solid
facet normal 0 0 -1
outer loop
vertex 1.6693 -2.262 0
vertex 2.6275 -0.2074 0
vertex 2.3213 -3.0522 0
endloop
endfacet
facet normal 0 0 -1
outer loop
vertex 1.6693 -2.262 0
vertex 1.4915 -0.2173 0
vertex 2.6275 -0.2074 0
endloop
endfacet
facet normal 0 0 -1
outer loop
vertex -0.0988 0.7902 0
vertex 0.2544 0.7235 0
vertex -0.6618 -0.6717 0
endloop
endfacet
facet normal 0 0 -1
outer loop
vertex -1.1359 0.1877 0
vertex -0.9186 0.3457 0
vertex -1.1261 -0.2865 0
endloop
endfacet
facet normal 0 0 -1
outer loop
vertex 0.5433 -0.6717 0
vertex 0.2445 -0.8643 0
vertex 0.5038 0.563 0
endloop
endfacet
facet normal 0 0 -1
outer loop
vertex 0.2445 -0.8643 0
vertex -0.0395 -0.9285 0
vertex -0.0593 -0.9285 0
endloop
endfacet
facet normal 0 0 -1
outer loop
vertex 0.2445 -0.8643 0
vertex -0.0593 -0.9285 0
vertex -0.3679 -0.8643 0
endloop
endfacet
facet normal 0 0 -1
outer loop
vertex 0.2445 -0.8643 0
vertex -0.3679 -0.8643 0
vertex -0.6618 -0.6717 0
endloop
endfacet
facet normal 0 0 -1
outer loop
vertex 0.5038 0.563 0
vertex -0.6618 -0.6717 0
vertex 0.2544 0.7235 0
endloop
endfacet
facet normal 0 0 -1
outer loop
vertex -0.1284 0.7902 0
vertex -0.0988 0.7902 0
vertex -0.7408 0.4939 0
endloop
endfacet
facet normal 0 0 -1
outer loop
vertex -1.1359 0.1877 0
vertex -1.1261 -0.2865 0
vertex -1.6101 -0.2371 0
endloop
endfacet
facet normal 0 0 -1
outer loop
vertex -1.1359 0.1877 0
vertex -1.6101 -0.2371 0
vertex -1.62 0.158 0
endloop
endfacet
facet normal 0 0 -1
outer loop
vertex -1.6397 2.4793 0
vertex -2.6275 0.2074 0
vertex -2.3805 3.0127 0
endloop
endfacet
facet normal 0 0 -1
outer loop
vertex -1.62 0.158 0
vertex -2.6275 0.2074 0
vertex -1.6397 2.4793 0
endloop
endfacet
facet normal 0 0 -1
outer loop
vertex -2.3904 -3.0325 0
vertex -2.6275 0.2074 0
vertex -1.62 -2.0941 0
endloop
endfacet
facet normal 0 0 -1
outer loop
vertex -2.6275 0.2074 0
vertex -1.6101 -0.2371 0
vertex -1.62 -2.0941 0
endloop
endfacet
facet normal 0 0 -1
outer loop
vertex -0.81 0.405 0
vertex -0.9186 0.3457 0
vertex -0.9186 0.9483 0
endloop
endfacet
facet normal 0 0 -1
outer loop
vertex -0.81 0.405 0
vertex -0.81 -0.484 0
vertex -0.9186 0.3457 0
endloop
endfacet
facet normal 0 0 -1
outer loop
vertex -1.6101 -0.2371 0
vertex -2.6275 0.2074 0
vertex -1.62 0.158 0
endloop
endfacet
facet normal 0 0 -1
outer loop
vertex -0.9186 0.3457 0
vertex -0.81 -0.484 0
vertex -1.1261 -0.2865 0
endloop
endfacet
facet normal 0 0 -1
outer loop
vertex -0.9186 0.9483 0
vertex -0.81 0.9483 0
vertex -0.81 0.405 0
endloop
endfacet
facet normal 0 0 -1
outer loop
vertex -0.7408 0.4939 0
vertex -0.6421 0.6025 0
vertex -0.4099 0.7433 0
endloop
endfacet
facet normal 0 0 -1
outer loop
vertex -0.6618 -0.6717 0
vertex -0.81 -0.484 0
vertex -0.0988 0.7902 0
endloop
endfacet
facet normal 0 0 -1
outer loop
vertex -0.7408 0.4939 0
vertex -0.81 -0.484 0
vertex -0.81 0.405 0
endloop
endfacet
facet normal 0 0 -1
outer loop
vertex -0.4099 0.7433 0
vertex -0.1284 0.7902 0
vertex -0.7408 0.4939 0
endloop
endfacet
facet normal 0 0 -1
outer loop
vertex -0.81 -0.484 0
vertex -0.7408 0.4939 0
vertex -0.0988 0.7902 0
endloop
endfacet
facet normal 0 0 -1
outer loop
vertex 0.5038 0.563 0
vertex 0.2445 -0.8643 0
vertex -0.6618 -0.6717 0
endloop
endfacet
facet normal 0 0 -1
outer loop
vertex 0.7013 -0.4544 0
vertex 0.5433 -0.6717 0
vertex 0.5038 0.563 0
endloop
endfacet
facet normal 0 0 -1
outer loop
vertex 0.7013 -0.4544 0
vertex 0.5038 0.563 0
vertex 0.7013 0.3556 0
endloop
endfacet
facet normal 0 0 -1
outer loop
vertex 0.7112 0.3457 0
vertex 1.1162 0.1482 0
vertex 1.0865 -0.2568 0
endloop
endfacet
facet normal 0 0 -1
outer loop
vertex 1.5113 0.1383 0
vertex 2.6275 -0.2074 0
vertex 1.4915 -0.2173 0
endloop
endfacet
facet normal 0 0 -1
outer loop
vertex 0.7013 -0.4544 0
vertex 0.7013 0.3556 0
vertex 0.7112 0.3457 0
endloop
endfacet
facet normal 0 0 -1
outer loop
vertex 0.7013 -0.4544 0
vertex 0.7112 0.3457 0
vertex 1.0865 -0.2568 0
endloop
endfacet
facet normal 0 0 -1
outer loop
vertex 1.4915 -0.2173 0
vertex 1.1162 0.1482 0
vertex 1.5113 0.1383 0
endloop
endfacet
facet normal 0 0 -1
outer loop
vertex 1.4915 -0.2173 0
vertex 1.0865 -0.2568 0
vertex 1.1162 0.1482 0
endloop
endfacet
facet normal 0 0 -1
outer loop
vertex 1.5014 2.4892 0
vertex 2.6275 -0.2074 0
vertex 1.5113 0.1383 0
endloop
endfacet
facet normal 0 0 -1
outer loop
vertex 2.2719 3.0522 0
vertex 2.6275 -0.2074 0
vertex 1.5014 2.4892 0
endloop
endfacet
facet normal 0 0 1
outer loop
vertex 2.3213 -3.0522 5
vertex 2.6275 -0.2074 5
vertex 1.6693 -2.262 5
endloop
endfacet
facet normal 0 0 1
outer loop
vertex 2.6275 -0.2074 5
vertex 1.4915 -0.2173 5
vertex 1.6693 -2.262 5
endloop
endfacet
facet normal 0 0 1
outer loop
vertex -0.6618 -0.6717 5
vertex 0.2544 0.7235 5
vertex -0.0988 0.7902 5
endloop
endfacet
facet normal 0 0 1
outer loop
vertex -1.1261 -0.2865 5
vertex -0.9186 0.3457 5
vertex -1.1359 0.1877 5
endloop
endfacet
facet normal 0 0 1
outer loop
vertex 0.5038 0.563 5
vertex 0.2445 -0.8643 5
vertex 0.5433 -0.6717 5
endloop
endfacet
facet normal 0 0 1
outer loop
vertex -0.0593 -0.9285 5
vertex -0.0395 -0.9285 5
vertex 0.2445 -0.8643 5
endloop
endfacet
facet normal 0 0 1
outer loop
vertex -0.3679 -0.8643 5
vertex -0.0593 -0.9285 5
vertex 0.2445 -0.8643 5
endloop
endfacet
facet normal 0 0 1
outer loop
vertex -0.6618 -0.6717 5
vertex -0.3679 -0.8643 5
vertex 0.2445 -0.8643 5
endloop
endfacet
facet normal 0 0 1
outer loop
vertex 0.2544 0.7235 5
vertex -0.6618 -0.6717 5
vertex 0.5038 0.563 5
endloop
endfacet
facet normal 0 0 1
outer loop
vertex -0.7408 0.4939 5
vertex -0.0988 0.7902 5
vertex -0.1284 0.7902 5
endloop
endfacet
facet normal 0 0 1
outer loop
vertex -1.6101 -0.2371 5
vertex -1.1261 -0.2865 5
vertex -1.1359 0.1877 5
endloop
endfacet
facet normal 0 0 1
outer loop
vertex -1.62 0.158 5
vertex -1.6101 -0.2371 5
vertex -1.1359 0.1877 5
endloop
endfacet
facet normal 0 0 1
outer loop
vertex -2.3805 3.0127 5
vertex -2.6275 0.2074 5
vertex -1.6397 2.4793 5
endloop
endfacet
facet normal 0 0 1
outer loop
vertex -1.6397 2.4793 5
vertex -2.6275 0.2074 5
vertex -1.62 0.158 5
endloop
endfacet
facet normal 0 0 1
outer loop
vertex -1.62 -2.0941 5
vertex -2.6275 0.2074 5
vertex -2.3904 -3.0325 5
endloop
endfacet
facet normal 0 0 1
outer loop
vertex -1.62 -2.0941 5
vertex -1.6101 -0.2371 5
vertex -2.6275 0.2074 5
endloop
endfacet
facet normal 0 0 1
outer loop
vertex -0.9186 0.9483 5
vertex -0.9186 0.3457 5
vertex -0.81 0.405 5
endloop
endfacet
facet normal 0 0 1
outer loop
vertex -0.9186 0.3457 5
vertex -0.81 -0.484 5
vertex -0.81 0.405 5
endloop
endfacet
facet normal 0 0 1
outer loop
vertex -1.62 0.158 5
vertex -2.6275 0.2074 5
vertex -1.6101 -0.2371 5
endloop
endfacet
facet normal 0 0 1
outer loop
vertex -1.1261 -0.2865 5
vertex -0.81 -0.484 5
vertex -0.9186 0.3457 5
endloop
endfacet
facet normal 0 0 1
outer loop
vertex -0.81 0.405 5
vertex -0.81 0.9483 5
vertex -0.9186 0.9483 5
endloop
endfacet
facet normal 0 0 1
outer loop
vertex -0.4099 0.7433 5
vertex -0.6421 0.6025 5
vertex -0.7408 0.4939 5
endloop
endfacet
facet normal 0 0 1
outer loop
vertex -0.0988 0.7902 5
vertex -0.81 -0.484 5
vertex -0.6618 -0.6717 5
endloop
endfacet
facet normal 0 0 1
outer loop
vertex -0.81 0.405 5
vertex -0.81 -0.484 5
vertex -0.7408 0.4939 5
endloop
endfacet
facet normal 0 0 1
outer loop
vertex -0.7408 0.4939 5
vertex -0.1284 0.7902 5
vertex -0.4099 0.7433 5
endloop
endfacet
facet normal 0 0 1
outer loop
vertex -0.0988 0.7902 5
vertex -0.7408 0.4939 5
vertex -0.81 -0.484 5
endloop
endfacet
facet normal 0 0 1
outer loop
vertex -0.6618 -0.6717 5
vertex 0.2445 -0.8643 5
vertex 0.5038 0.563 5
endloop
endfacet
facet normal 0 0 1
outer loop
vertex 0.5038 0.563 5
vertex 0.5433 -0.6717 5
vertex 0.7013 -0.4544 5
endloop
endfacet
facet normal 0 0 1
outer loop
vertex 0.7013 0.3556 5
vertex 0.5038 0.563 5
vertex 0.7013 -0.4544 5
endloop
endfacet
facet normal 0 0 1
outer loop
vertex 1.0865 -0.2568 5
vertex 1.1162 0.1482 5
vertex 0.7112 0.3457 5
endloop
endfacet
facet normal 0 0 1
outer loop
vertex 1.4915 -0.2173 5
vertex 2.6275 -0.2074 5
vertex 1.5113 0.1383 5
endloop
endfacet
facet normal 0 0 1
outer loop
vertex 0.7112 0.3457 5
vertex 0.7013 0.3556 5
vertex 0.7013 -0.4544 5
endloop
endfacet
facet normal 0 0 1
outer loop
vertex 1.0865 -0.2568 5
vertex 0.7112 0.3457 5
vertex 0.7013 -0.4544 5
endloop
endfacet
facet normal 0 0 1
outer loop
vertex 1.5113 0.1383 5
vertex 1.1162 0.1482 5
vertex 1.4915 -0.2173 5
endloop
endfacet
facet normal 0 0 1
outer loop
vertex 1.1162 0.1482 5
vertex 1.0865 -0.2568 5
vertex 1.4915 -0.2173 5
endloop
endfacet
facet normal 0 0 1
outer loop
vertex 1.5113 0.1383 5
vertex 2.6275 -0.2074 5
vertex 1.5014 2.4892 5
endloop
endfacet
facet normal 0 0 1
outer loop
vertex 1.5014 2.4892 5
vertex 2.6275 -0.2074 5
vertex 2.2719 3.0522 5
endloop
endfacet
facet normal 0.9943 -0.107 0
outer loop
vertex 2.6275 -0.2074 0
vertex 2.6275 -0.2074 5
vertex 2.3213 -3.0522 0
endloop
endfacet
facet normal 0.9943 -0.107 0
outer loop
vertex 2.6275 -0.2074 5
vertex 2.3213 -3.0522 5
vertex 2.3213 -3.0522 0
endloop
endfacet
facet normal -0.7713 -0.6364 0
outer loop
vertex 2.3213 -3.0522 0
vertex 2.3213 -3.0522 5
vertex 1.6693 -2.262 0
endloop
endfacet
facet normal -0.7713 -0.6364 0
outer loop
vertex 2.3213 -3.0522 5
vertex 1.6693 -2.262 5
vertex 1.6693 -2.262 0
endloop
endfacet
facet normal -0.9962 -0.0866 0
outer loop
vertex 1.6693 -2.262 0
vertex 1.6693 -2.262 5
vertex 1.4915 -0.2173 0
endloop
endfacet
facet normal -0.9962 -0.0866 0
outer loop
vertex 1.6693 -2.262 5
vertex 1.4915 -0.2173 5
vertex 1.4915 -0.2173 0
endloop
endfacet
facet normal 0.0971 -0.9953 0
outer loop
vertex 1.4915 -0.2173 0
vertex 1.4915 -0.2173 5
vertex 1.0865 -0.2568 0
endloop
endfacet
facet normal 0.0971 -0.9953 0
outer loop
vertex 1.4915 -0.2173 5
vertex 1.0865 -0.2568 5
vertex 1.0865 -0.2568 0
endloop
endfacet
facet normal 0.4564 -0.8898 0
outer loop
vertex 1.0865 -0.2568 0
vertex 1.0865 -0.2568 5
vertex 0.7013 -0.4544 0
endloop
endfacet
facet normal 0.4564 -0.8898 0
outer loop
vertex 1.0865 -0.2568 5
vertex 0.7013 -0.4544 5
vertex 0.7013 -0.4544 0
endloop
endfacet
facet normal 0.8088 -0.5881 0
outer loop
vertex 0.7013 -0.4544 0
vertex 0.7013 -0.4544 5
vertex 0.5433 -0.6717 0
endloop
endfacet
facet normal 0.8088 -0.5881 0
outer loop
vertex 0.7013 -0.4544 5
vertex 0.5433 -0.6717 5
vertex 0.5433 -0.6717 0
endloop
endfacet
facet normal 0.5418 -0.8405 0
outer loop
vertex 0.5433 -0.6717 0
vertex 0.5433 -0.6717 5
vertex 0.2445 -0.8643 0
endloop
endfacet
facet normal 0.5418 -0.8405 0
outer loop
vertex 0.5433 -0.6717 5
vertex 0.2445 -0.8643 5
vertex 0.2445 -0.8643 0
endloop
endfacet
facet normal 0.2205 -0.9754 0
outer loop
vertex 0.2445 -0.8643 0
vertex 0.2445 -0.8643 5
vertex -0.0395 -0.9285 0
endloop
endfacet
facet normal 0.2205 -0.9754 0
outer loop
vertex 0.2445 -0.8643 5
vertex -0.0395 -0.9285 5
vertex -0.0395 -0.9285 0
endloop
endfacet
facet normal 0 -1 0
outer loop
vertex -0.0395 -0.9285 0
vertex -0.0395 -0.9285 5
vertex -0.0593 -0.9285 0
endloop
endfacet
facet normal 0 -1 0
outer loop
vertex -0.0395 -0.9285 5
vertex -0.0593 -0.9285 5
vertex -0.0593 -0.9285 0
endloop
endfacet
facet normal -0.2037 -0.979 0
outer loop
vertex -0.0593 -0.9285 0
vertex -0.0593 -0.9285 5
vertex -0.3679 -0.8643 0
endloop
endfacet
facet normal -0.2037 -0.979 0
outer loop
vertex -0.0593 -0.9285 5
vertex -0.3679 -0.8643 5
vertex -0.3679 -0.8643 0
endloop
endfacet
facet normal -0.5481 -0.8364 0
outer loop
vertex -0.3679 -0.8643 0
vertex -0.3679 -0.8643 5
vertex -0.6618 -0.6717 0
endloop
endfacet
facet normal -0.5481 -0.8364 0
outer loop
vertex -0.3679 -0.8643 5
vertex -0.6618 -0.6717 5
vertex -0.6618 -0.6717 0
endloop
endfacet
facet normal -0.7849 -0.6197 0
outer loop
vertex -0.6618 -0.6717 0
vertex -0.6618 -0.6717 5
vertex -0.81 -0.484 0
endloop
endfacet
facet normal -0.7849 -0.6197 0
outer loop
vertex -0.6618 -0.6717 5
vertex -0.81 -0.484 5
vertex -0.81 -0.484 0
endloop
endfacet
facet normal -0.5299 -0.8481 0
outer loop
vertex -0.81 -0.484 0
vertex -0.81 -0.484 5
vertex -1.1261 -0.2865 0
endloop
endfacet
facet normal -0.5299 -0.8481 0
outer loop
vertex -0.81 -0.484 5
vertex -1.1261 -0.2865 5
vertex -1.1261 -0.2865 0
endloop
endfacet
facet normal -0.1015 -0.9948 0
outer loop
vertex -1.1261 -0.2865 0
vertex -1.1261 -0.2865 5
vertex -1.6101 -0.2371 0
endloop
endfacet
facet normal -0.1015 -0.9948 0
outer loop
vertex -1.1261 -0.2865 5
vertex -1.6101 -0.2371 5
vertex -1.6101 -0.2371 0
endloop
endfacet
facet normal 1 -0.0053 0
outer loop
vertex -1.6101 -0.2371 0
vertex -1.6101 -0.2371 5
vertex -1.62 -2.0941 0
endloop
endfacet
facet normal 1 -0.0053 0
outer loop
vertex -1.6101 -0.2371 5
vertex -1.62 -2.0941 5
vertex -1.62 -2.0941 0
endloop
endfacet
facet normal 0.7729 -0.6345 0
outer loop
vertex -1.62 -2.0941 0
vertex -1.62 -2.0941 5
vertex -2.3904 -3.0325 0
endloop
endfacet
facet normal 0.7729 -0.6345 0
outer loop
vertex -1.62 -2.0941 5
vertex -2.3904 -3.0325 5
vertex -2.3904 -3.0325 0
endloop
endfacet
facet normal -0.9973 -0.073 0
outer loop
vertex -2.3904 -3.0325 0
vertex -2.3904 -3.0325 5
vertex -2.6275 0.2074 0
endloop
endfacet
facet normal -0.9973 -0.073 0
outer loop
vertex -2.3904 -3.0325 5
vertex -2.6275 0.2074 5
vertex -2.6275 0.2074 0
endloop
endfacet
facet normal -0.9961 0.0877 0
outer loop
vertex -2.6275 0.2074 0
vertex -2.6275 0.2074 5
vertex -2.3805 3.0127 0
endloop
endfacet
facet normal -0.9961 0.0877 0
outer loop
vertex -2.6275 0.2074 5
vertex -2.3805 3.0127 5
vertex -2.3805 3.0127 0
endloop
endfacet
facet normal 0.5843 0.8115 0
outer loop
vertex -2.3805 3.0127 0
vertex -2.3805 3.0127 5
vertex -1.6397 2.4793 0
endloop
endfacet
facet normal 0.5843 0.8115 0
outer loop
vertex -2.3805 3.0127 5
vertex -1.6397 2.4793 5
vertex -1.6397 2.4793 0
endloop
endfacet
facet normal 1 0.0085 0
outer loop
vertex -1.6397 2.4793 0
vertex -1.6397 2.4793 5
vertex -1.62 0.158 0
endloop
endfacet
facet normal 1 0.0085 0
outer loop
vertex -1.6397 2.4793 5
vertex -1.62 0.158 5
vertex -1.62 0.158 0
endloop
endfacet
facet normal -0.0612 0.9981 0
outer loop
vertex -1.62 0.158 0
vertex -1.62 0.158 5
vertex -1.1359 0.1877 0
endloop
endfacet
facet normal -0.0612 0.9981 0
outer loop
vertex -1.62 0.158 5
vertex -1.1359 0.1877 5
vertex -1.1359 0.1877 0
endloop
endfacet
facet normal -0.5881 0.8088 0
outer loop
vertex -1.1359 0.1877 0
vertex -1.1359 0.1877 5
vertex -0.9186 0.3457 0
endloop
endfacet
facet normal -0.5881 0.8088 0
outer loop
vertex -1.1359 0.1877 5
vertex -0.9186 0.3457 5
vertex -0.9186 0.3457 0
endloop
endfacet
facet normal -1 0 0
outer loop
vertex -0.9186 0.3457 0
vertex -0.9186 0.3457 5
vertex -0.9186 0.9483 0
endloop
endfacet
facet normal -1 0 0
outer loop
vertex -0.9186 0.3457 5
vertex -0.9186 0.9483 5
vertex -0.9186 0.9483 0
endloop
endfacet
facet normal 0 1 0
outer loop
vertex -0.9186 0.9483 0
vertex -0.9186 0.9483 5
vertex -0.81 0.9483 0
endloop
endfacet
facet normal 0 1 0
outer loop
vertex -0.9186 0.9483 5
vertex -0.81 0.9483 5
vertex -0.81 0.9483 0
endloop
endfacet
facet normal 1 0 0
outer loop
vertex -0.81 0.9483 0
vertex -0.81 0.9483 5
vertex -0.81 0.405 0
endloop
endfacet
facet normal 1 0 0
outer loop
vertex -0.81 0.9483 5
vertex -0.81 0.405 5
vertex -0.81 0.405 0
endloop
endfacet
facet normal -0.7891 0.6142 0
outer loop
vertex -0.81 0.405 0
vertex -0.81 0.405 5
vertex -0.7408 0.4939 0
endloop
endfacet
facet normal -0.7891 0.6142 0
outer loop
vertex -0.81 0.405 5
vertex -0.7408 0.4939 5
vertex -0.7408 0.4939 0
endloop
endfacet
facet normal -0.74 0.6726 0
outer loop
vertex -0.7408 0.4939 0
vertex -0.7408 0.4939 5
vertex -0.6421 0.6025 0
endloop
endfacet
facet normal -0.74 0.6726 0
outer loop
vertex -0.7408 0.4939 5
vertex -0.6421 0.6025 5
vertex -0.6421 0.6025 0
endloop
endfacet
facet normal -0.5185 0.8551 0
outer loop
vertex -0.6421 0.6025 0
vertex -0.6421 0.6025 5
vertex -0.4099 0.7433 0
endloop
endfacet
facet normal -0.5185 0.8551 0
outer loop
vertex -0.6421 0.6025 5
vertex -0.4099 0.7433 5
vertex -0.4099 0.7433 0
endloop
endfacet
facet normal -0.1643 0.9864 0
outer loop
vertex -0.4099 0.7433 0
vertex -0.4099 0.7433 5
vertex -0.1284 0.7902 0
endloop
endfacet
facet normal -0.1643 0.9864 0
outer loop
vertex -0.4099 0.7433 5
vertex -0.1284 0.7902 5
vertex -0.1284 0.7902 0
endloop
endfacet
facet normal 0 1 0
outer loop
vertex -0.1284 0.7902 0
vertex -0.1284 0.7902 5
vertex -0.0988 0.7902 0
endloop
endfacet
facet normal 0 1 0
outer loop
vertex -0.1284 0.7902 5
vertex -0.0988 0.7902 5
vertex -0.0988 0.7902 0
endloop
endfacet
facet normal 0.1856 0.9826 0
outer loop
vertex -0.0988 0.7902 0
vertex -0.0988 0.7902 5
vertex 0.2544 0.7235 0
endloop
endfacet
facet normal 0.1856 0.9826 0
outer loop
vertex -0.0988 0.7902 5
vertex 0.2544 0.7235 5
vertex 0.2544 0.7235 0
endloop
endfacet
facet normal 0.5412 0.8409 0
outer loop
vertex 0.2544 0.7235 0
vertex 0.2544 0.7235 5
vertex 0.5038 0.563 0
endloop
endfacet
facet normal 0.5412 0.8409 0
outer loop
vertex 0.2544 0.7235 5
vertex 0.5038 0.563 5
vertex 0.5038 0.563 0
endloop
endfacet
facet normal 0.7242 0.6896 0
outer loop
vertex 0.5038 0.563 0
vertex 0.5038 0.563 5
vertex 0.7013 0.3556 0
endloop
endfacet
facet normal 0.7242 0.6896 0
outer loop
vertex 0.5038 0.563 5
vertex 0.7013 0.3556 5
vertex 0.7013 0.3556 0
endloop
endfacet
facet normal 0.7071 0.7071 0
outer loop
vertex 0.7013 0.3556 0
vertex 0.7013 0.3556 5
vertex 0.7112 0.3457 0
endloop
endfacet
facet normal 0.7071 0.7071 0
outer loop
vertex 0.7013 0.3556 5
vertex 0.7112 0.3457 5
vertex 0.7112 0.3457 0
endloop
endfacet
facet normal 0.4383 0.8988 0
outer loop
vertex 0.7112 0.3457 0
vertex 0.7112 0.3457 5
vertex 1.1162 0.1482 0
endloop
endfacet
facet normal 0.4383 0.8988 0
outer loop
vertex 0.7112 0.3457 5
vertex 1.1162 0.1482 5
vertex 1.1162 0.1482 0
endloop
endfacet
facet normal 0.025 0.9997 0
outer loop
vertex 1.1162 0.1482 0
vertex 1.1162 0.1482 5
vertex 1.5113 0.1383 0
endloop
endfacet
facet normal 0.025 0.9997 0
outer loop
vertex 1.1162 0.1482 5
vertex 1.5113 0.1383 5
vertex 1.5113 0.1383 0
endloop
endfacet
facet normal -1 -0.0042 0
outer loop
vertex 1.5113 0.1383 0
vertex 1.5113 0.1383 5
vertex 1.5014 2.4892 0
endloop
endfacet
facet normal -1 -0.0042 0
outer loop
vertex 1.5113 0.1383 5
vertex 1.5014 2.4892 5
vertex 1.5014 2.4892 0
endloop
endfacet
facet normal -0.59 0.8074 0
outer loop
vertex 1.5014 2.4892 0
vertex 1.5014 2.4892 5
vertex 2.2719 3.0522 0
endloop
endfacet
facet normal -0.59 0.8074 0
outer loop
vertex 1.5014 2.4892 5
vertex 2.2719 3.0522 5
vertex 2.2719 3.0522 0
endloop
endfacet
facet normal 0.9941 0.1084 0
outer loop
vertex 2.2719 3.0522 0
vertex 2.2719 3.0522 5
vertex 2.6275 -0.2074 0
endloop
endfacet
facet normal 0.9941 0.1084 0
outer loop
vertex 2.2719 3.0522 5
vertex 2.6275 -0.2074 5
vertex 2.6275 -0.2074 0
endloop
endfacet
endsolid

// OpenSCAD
// Module names are of the form poly_<inkscape-path-id>().  As a result,
// you can associate a polygon in this OpenSCAD program with the corresponding
// SVG element in the Inkscape document by looking for the XML element with
// the attribute id="inkscape-path-id".

// fudge value is used to ensure that subtracted solids are a tad taller
// in the z dimension than the polygon being subtracted from.  This helps
// keep the resulting .stl file manifold.
fudge = 0.1;

module poly_path4404(h)
{
  scale([25.4/90, -25.4/90, 1]) union()
  {
    linear_extrude(height=h)
      polygon([[-4.025000,-0.665000],[-3.255000,-1.225000],[-3.255000,-3.360000],[-2.870000,-3.360000],[-2.870000,-1.435000],[-2.625000,-1.750000],[-2.275000,-2.135000],[-1.452500,-2.633750],[-0.455000,-2.800000],[-0.350000,-2.800000],[0.901250,-2.563750],[1.785000,-1.995000],[2.485000,-1.260000],[2.520000,-1.225000],[3.955000,-0.525000],[5.355000,-0.490000],[5.320000,-8.820000],[8.050000,-10.815000],[9.310000,0.735000],[8.225000,10.815000],[5.915000,8.015000],[5.285000,0.770000],[3.850000,0.910000],[2.485000,1.610000],[1.925000,2.380000],[0.866250,3.062500],[-0.140000,3.290000],[-0.210000,3.290000],[-1.303750,3.062500],[-2.345000,2.380000],[-2.870000,1.715000],[-3.990000,1.015000],[-5.705000,0.840000],[-5.740000,7.420000],[-8.470000,10.745000],[-9.310000,-0.735000],[-8.435000,-10.675000],[-5.810000,-8.785000],[-5.740000,-0.560000],[-4.025000,-0.665000]]);
  }
}

poly_path4404(5);
